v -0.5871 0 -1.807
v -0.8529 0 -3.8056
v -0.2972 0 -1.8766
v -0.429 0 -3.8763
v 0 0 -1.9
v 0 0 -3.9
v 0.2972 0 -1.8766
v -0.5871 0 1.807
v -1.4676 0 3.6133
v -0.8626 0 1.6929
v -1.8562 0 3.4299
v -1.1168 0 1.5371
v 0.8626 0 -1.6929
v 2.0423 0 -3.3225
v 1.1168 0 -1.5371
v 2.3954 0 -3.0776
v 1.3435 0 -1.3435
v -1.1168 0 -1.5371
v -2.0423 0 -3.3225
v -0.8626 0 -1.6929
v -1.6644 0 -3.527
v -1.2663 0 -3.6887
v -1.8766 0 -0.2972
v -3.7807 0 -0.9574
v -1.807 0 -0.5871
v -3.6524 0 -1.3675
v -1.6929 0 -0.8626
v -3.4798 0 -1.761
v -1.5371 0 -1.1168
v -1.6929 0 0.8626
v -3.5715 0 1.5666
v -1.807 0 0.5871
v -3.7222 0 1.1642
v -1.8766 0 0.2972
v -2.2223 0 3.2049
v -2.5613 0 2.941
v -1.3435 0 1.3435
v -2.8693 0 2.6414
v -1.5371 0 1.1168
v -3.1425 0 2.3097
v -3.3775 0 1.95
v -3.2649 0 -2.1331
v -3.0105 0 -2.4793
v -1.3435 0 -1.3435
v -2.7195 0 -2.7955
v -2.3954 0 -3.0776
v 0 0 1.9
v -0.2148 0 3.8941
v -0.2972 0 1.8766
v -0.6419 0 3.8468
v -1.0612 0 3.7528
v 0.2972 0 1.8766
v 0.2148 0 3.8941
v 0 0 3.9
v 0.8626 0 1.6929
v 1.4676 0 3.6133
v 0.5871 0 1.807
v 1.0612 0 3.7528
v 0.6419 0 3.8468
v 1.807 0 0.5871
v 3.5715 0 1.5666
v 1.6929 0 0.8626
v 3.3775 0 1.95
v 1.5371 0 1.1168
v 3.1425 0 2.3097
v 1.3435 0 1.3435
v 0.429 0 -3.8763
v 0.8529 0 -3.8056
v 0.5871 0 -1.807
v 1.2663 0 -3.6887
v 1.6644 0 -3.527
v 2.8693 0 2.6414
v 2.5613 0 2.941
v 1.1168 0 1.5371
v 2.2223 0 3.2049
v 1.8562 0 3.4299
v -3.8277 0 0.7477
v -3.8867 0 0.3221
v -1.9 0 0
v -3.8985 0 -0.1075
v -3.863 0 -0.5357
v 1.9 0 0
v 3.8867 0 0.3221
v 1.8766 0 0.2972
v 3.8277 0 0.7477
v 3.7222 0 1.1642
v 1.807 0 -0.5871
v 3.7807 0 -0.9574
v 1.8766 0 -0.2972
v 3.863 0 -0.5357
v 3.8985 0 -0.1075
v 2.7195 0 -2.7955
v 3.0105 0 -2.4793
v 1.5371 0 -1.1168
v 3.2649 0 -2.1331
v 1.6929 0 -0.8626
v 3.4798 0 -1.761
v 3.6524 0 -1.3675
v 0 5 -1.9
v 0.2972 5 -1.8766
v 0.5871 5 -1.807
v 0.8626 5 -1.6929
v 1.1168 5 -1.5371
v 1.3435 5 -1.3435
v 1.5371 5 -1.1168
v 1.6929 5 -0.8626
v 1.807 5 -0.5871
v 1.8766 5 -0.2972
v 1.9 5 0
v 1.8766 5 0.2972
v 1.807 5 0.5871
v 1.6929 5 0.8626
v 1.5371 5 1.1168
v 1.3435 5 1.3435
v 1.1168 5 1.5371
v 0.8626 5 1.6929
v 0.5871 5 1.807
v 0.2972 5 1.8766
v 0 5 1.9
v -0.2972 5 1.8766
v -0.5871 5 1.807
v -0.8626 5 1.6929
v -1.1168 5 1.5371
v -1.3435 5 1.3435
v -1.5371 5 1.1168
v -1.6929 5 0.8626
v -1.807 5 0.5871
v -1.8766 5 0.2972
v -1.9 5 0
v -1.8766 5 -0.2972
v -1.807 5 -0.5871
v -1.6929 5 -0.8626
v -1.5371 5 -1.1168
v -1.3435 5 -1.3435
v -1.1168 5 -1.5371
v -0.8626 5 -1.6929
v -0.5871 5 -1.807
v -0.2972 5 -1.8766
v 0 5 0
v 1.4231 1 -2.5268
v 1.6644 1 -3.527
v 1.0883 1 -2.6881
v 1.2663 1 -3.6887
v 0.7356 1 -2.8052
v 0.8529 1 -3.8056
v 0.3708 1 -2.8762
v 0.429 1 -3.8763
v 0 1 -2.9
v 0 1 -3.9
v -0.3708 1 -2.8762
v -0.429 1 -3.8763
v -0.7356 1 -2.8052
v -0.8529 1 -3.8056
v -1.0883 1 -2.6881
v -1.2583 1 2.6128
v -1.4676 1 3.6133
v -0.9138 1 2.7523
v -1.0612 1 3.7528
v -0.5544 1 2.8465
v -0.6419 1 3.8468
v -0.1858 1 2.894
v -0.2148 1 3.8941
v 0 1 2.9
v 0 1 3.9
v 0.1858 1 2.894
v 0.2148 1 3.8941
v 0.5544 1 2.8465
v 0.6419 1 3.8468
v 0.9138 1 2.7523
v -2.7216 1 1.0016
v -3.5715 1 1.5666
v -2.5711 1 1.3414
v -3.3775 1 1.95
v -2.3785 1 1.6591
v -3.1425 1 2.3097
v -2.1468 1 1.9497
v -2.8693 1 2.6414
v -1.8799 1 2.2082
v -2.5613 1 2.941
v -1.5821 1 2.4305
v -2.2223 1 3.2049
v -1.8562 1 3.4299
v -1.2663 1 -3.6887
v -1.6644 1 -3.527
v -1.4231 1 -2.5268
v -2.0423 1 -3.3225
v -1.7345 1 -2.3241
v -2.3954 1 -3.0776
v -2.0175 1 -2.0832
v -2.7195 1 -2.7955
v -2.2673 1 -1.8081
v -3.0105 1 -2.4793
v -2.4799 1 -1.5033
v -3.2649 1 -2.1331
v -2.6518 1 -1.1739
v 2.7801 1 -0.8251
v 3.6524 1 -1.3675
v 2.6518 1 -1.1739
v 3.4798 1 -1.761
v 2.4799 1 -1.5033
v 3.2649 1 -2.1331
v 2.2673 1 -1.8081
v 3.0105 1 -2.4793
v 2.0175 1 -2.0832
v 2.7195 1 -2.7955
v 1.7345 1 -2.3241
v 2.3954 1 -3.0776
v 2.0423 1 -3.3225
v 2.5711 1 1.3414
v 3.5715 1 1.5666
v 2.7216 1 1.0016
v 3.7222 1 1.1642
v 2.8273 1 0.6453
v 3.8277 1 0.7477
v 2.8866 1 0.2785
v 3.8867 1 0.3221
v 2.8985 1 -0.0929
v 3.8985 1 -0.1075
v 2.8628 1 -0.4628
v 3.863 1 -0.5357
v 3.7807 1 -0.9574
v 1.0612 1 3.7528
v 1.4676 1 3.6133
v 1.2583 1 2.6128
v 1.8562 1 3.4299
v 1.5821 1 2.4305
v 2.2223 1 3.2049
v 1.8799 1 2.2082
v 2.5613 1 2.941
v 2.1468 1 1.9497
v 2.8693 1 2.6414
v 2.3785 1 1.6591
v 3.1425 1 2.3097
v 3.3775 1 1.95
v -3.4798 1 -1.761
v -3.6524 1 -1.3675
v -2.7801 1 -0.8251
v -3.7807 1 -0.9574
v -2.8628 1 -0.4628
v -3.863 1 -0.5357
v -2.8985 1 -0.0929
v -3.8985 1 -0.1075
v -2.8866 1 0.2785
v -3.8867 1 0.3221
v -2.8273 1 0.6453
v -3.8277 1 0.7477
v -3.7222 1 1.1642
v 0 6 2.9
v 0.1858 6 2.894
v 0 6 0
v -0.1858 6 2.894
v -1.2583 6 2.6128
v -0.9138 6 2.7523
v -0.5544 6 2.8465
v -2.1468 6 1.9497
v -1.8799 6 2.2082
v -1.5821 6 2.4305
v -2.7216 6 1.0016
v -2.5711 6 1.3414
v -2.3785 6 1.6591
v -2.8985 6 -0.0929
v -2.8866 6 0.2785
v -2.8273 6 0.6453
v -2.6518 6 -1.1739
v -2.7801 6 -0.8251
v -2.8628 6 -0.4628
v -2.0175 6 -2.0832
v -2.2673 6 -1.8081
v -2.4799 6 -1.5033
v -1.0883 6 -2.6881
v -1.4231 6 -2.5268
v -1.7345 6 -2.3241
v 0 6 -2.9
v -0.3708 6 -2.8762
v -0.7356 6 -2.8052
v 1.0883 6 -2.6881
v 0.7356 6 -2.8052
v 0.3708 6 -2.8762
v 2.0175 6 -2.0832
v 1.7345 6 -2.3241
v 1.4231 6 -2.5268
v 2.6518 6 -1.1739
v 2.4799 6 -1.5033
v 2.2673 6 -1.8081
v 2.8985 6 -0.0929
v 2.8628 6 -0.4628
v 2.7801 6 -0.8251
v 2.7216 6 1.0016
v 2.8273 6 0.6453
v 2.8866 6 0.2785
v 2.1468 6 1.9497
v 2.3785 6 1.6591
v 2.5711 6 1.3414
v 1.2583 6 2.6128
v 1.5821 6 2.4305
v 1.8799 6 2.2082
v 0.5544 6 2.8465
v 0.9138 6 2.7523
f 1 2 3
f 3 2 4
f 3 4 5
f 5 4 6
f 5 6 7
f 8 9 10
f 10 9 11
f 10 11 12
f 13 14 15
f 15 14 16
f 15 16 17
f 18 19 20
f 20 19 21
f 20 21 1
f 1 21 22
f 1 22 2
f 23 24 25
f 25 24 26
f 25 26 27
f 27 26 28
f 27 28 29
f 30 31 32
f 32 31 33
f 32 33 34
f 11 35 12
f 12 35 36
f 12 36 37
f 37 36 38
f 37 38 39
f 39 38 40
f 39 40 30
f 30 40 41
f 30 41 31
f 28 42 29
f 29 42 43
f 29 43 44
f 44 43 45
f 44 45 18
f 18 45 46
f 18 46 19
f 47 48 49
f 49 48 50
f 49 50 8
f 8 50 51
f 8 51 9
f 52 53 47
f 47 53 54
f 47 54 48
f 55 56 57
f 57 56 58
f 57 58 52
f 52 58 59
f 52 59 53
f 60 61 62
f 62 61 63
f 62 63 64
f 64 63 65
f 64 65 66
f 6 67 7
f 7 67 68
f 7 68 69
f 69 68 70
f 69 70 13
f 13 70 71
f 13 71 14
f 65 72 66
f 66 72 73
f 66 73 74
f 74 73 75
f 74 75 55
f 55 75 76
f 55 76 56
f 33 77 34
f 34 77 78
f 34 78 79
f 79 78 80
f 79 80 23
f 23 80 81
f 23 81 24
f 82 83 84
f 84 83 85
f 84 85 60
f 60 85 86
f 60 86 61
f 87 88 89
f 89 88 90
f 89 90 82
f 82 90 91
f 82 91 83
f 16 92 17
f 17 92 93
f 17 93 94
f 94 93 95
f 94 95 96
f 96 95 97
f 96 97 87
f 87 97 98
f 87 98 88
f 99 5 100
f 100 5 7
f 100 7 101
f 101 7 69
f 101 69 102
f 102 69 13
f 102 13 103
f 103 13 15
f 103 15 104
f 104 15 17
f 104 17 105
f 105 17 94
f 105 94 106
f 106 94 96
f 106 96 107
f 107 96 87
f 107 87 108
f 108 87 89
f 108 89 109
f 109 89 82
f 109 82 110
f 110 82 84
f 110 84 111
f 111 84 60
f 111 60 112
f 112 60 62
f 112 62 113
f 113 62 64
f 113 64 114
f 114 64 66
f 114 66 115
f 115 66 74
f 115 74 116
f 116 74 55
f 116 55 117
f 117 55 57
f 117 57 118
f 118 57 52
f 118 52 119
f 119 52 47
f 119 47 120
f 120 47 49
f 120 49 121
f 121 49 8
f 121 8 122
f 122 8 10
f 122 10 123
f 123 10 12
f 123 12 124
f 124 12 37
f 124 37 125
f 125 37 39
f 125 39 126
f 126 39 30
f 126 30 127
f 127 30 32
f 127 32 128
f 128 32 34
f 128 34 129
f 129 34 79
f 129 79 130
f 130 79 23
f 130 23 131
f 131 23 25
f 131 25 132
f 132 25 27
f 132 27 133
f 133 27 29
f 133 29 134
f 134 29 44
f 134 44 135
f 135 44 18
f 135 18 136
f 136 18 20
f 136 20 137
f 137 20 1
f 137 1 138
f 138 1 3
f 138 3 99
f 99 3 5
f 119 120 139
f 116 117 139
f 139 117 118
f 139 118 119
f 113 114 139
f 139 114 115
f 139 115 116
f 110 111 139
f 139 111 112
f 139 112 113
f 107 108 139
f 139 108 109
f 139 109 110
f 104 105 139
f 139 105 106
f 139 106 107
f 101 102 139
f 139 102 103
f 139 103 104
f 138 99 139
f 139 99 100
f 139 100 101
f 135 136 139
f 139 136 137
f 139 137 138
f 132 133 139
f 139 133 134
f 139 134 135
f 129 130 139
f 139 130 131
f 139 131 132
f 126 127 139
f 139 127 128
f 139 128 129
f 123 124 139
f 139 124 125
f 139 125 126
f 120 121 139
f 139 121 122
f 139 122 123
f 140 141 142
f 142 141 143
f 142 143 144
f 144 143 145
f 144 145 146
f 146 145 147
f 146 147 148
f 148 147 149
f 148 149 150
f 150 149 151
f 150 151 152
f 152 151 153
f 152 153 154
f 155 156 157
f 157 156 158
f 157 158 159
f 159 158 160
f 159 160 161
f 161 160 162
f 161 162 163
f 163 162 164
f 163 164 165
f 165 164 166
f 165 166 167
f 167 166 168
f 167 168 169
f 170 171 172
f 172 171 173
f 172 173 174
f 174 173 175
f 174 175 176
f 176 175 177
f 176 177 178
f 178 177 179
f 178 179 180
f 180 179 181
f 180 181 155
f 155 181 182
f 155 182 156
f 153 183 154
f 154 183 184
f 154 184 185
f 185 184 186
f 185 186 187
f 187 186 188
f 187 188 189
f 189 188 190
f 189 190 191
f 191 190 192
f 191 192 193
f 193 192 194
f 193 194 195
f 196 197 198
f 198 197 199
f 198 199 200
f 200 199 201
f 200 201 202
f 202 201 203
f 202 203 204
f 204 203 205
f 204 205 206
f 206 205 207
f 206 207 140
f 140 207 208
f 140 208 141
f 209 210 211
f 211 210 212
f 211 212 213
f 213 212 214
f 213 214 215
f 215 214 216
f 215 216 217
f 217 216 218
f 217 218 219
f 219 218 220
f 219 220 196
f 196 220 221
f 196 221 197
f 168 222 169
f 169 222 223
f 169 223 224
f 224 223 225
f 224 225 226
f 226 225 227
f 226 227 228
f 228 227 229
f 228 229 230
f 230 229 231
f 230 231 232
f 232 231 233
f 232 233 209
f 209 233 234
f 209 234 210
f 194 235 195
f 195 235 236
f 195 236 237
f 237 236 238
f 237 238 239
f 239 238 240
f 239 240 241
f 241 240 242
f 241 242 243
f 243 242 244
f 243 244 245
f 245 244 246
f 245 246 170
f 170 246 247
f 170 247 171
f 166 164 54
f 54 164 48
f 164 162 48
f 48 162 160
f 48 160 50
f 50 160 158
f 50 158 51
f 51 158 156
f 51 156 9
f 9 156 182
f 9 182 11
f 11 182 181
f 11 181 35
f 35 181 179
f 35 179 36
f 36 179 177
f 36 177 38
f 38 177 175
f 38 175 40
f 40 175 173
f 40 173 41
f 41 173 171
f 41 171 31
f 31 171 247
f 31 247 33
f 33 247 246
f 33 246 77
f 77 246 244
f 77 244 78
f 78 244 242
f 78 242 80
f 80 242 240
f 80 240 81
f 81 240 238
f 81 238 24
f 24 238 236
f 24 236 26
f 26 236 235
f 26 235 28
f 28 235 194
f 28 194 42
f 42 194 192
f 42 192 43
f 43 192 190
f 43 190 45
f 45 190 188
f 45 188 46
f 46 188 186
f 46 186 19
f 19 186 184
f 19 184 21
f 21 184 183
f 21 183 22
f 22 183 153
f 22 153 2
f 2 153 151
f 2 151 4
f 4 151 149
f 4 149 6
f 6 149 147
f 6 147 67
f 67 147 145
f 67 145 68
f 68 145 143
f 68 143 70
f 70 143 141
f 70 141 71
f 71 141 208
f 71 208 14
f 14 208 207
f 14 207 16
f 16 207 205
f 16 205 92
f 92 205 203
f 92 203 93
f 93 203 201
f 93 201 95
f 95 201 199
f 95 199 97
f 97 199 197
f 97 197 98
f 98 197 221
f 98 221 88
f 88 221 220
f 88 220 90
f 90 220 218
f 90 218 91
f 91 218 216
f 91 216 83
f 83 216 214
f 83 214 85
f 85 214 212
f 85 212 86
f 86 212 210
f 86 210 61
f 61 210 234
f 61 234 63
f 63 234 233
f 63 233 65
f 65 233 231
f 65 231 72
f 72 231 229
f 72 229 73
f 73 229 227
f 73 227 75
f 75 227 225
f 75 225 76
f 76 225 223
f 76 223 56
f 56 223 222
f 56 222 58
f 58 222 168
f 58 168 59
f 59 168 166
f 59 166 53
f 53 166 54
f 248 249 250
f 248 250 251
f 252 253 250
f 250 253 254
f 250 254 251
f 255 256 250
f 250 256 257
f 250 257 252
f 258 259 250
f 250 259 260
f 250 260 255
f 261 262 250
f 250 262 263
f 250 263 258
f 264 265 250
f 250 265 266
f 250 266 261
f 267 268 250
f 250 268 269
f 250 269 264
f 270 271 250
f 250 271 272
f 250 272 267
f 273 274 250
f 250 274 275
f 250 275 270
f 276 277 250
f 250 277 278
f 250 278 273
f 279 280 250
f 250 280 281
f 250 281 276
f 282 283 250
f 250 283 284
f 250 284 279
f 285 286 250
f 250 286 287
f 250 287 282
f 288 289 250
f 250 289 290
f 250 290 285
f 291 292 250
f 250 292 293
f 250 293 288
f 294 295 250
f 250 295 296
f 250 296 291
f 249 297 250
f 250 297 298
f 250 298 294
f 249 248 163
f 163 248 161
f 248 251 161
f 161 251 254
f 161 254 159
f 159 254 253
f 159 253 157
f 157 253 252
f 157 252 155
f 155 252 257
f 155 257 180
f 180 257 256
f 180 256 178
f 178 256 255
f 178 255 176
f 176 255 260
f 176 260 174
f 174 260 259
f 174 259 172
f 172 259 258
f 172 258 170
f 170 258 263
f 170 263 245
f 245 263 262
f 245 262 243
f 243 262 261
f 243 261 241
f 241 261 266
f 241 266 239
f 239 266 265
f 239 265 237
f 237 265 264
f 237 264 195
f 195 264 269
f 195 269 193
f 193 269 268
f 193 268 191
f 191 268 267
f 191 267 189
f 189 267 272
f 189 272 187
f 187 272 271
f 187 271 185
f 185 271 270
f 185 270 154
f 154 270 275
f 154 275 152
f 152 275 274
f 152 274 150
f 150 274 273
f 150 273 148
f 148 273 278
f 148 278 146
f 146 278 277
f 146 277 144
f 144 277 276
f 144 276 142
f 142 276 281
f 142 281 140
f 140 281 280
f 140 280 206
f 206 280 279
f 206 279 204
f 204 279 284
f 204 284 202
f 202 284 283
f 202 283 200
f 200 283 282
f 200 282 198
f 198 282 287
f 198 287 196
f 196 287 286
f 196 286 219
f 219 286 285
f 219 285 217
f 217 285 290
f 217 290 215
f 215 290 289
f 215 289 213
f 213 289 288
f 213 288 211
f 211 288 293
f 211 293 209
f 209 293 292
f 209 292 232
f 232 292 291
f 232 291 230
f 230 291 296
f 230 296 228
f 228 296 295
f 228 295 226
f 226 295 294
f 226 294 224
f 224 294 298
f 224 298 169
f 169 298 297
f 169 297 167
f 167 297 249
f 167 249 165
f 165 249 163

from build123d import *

# Parameters (mm, degrees)
SKETCH_1_R      = 2.9
SKETCH_1_R_2    = 1.9
EXTRUDE_1_DEPTH = 5
EXTRUDE_START   = 5
SKETCH_1_7_R    = 2.9
EXTRUDE_2_DEPTH = 1
SKETCH_1_8_R    = 3.9
SKETCH_1_8_R_2  = 1.9
EXTRUDE_3_DEPTH = 1


with BuildPart() as part:
    # 草图1 → 凸台-拉伸1 (new body)
    with BuildSketch(Plane(origin=(0, 0, 0), x_dir=(1, 0, 0), z_dir=(0, 1, 0))):
        with Locations(Location((0, 0, 0), (0, 0, 270))):
            Circle(SKETCH_1_R)
        with Locations(Location((0, 0, 0), (0, 0, 270))):
            Circle(SKETCH_1_R_2, mode=Mode.SUBTRACT)
    extrude(amount=EXTRUDE_1_DEPTH)

    # 草图1<7> → 凸台-拉伸2 (add)
    with BuildSketch(Plane(origin=(0, 0, 0), x_dir=(1, 0, 0), z_dir=(0, 1, 0)).offset(EXTRUDE_START)):
        with Locations(Location((0, 0, 0), (0, 0, 270))):
            Circle(SKETCH_1_7_R)
    extrude(amount=EXTRUDE_2_DEPTH)

    # 草图1<8> → 凸台-拉伸3 (add)
    with BuildSketch(Plane(origin=(0, 0, 0), x_dir=(1, 0, 0), z_dir=(0, 1, 0))):
        with Locations(Location((0, 0, 0), (0, 0, 270))):
            Circle(SKETCH_1_8_R)
        with Locations(Location((0, 0, 0), (0, 0, 270))):
            Circle(SKETCH_1_8_R_2, mode=Mode.SUBTRACT)
    extrude(amount=EXTRUDE_3_DEPTH)


solid = part.part
